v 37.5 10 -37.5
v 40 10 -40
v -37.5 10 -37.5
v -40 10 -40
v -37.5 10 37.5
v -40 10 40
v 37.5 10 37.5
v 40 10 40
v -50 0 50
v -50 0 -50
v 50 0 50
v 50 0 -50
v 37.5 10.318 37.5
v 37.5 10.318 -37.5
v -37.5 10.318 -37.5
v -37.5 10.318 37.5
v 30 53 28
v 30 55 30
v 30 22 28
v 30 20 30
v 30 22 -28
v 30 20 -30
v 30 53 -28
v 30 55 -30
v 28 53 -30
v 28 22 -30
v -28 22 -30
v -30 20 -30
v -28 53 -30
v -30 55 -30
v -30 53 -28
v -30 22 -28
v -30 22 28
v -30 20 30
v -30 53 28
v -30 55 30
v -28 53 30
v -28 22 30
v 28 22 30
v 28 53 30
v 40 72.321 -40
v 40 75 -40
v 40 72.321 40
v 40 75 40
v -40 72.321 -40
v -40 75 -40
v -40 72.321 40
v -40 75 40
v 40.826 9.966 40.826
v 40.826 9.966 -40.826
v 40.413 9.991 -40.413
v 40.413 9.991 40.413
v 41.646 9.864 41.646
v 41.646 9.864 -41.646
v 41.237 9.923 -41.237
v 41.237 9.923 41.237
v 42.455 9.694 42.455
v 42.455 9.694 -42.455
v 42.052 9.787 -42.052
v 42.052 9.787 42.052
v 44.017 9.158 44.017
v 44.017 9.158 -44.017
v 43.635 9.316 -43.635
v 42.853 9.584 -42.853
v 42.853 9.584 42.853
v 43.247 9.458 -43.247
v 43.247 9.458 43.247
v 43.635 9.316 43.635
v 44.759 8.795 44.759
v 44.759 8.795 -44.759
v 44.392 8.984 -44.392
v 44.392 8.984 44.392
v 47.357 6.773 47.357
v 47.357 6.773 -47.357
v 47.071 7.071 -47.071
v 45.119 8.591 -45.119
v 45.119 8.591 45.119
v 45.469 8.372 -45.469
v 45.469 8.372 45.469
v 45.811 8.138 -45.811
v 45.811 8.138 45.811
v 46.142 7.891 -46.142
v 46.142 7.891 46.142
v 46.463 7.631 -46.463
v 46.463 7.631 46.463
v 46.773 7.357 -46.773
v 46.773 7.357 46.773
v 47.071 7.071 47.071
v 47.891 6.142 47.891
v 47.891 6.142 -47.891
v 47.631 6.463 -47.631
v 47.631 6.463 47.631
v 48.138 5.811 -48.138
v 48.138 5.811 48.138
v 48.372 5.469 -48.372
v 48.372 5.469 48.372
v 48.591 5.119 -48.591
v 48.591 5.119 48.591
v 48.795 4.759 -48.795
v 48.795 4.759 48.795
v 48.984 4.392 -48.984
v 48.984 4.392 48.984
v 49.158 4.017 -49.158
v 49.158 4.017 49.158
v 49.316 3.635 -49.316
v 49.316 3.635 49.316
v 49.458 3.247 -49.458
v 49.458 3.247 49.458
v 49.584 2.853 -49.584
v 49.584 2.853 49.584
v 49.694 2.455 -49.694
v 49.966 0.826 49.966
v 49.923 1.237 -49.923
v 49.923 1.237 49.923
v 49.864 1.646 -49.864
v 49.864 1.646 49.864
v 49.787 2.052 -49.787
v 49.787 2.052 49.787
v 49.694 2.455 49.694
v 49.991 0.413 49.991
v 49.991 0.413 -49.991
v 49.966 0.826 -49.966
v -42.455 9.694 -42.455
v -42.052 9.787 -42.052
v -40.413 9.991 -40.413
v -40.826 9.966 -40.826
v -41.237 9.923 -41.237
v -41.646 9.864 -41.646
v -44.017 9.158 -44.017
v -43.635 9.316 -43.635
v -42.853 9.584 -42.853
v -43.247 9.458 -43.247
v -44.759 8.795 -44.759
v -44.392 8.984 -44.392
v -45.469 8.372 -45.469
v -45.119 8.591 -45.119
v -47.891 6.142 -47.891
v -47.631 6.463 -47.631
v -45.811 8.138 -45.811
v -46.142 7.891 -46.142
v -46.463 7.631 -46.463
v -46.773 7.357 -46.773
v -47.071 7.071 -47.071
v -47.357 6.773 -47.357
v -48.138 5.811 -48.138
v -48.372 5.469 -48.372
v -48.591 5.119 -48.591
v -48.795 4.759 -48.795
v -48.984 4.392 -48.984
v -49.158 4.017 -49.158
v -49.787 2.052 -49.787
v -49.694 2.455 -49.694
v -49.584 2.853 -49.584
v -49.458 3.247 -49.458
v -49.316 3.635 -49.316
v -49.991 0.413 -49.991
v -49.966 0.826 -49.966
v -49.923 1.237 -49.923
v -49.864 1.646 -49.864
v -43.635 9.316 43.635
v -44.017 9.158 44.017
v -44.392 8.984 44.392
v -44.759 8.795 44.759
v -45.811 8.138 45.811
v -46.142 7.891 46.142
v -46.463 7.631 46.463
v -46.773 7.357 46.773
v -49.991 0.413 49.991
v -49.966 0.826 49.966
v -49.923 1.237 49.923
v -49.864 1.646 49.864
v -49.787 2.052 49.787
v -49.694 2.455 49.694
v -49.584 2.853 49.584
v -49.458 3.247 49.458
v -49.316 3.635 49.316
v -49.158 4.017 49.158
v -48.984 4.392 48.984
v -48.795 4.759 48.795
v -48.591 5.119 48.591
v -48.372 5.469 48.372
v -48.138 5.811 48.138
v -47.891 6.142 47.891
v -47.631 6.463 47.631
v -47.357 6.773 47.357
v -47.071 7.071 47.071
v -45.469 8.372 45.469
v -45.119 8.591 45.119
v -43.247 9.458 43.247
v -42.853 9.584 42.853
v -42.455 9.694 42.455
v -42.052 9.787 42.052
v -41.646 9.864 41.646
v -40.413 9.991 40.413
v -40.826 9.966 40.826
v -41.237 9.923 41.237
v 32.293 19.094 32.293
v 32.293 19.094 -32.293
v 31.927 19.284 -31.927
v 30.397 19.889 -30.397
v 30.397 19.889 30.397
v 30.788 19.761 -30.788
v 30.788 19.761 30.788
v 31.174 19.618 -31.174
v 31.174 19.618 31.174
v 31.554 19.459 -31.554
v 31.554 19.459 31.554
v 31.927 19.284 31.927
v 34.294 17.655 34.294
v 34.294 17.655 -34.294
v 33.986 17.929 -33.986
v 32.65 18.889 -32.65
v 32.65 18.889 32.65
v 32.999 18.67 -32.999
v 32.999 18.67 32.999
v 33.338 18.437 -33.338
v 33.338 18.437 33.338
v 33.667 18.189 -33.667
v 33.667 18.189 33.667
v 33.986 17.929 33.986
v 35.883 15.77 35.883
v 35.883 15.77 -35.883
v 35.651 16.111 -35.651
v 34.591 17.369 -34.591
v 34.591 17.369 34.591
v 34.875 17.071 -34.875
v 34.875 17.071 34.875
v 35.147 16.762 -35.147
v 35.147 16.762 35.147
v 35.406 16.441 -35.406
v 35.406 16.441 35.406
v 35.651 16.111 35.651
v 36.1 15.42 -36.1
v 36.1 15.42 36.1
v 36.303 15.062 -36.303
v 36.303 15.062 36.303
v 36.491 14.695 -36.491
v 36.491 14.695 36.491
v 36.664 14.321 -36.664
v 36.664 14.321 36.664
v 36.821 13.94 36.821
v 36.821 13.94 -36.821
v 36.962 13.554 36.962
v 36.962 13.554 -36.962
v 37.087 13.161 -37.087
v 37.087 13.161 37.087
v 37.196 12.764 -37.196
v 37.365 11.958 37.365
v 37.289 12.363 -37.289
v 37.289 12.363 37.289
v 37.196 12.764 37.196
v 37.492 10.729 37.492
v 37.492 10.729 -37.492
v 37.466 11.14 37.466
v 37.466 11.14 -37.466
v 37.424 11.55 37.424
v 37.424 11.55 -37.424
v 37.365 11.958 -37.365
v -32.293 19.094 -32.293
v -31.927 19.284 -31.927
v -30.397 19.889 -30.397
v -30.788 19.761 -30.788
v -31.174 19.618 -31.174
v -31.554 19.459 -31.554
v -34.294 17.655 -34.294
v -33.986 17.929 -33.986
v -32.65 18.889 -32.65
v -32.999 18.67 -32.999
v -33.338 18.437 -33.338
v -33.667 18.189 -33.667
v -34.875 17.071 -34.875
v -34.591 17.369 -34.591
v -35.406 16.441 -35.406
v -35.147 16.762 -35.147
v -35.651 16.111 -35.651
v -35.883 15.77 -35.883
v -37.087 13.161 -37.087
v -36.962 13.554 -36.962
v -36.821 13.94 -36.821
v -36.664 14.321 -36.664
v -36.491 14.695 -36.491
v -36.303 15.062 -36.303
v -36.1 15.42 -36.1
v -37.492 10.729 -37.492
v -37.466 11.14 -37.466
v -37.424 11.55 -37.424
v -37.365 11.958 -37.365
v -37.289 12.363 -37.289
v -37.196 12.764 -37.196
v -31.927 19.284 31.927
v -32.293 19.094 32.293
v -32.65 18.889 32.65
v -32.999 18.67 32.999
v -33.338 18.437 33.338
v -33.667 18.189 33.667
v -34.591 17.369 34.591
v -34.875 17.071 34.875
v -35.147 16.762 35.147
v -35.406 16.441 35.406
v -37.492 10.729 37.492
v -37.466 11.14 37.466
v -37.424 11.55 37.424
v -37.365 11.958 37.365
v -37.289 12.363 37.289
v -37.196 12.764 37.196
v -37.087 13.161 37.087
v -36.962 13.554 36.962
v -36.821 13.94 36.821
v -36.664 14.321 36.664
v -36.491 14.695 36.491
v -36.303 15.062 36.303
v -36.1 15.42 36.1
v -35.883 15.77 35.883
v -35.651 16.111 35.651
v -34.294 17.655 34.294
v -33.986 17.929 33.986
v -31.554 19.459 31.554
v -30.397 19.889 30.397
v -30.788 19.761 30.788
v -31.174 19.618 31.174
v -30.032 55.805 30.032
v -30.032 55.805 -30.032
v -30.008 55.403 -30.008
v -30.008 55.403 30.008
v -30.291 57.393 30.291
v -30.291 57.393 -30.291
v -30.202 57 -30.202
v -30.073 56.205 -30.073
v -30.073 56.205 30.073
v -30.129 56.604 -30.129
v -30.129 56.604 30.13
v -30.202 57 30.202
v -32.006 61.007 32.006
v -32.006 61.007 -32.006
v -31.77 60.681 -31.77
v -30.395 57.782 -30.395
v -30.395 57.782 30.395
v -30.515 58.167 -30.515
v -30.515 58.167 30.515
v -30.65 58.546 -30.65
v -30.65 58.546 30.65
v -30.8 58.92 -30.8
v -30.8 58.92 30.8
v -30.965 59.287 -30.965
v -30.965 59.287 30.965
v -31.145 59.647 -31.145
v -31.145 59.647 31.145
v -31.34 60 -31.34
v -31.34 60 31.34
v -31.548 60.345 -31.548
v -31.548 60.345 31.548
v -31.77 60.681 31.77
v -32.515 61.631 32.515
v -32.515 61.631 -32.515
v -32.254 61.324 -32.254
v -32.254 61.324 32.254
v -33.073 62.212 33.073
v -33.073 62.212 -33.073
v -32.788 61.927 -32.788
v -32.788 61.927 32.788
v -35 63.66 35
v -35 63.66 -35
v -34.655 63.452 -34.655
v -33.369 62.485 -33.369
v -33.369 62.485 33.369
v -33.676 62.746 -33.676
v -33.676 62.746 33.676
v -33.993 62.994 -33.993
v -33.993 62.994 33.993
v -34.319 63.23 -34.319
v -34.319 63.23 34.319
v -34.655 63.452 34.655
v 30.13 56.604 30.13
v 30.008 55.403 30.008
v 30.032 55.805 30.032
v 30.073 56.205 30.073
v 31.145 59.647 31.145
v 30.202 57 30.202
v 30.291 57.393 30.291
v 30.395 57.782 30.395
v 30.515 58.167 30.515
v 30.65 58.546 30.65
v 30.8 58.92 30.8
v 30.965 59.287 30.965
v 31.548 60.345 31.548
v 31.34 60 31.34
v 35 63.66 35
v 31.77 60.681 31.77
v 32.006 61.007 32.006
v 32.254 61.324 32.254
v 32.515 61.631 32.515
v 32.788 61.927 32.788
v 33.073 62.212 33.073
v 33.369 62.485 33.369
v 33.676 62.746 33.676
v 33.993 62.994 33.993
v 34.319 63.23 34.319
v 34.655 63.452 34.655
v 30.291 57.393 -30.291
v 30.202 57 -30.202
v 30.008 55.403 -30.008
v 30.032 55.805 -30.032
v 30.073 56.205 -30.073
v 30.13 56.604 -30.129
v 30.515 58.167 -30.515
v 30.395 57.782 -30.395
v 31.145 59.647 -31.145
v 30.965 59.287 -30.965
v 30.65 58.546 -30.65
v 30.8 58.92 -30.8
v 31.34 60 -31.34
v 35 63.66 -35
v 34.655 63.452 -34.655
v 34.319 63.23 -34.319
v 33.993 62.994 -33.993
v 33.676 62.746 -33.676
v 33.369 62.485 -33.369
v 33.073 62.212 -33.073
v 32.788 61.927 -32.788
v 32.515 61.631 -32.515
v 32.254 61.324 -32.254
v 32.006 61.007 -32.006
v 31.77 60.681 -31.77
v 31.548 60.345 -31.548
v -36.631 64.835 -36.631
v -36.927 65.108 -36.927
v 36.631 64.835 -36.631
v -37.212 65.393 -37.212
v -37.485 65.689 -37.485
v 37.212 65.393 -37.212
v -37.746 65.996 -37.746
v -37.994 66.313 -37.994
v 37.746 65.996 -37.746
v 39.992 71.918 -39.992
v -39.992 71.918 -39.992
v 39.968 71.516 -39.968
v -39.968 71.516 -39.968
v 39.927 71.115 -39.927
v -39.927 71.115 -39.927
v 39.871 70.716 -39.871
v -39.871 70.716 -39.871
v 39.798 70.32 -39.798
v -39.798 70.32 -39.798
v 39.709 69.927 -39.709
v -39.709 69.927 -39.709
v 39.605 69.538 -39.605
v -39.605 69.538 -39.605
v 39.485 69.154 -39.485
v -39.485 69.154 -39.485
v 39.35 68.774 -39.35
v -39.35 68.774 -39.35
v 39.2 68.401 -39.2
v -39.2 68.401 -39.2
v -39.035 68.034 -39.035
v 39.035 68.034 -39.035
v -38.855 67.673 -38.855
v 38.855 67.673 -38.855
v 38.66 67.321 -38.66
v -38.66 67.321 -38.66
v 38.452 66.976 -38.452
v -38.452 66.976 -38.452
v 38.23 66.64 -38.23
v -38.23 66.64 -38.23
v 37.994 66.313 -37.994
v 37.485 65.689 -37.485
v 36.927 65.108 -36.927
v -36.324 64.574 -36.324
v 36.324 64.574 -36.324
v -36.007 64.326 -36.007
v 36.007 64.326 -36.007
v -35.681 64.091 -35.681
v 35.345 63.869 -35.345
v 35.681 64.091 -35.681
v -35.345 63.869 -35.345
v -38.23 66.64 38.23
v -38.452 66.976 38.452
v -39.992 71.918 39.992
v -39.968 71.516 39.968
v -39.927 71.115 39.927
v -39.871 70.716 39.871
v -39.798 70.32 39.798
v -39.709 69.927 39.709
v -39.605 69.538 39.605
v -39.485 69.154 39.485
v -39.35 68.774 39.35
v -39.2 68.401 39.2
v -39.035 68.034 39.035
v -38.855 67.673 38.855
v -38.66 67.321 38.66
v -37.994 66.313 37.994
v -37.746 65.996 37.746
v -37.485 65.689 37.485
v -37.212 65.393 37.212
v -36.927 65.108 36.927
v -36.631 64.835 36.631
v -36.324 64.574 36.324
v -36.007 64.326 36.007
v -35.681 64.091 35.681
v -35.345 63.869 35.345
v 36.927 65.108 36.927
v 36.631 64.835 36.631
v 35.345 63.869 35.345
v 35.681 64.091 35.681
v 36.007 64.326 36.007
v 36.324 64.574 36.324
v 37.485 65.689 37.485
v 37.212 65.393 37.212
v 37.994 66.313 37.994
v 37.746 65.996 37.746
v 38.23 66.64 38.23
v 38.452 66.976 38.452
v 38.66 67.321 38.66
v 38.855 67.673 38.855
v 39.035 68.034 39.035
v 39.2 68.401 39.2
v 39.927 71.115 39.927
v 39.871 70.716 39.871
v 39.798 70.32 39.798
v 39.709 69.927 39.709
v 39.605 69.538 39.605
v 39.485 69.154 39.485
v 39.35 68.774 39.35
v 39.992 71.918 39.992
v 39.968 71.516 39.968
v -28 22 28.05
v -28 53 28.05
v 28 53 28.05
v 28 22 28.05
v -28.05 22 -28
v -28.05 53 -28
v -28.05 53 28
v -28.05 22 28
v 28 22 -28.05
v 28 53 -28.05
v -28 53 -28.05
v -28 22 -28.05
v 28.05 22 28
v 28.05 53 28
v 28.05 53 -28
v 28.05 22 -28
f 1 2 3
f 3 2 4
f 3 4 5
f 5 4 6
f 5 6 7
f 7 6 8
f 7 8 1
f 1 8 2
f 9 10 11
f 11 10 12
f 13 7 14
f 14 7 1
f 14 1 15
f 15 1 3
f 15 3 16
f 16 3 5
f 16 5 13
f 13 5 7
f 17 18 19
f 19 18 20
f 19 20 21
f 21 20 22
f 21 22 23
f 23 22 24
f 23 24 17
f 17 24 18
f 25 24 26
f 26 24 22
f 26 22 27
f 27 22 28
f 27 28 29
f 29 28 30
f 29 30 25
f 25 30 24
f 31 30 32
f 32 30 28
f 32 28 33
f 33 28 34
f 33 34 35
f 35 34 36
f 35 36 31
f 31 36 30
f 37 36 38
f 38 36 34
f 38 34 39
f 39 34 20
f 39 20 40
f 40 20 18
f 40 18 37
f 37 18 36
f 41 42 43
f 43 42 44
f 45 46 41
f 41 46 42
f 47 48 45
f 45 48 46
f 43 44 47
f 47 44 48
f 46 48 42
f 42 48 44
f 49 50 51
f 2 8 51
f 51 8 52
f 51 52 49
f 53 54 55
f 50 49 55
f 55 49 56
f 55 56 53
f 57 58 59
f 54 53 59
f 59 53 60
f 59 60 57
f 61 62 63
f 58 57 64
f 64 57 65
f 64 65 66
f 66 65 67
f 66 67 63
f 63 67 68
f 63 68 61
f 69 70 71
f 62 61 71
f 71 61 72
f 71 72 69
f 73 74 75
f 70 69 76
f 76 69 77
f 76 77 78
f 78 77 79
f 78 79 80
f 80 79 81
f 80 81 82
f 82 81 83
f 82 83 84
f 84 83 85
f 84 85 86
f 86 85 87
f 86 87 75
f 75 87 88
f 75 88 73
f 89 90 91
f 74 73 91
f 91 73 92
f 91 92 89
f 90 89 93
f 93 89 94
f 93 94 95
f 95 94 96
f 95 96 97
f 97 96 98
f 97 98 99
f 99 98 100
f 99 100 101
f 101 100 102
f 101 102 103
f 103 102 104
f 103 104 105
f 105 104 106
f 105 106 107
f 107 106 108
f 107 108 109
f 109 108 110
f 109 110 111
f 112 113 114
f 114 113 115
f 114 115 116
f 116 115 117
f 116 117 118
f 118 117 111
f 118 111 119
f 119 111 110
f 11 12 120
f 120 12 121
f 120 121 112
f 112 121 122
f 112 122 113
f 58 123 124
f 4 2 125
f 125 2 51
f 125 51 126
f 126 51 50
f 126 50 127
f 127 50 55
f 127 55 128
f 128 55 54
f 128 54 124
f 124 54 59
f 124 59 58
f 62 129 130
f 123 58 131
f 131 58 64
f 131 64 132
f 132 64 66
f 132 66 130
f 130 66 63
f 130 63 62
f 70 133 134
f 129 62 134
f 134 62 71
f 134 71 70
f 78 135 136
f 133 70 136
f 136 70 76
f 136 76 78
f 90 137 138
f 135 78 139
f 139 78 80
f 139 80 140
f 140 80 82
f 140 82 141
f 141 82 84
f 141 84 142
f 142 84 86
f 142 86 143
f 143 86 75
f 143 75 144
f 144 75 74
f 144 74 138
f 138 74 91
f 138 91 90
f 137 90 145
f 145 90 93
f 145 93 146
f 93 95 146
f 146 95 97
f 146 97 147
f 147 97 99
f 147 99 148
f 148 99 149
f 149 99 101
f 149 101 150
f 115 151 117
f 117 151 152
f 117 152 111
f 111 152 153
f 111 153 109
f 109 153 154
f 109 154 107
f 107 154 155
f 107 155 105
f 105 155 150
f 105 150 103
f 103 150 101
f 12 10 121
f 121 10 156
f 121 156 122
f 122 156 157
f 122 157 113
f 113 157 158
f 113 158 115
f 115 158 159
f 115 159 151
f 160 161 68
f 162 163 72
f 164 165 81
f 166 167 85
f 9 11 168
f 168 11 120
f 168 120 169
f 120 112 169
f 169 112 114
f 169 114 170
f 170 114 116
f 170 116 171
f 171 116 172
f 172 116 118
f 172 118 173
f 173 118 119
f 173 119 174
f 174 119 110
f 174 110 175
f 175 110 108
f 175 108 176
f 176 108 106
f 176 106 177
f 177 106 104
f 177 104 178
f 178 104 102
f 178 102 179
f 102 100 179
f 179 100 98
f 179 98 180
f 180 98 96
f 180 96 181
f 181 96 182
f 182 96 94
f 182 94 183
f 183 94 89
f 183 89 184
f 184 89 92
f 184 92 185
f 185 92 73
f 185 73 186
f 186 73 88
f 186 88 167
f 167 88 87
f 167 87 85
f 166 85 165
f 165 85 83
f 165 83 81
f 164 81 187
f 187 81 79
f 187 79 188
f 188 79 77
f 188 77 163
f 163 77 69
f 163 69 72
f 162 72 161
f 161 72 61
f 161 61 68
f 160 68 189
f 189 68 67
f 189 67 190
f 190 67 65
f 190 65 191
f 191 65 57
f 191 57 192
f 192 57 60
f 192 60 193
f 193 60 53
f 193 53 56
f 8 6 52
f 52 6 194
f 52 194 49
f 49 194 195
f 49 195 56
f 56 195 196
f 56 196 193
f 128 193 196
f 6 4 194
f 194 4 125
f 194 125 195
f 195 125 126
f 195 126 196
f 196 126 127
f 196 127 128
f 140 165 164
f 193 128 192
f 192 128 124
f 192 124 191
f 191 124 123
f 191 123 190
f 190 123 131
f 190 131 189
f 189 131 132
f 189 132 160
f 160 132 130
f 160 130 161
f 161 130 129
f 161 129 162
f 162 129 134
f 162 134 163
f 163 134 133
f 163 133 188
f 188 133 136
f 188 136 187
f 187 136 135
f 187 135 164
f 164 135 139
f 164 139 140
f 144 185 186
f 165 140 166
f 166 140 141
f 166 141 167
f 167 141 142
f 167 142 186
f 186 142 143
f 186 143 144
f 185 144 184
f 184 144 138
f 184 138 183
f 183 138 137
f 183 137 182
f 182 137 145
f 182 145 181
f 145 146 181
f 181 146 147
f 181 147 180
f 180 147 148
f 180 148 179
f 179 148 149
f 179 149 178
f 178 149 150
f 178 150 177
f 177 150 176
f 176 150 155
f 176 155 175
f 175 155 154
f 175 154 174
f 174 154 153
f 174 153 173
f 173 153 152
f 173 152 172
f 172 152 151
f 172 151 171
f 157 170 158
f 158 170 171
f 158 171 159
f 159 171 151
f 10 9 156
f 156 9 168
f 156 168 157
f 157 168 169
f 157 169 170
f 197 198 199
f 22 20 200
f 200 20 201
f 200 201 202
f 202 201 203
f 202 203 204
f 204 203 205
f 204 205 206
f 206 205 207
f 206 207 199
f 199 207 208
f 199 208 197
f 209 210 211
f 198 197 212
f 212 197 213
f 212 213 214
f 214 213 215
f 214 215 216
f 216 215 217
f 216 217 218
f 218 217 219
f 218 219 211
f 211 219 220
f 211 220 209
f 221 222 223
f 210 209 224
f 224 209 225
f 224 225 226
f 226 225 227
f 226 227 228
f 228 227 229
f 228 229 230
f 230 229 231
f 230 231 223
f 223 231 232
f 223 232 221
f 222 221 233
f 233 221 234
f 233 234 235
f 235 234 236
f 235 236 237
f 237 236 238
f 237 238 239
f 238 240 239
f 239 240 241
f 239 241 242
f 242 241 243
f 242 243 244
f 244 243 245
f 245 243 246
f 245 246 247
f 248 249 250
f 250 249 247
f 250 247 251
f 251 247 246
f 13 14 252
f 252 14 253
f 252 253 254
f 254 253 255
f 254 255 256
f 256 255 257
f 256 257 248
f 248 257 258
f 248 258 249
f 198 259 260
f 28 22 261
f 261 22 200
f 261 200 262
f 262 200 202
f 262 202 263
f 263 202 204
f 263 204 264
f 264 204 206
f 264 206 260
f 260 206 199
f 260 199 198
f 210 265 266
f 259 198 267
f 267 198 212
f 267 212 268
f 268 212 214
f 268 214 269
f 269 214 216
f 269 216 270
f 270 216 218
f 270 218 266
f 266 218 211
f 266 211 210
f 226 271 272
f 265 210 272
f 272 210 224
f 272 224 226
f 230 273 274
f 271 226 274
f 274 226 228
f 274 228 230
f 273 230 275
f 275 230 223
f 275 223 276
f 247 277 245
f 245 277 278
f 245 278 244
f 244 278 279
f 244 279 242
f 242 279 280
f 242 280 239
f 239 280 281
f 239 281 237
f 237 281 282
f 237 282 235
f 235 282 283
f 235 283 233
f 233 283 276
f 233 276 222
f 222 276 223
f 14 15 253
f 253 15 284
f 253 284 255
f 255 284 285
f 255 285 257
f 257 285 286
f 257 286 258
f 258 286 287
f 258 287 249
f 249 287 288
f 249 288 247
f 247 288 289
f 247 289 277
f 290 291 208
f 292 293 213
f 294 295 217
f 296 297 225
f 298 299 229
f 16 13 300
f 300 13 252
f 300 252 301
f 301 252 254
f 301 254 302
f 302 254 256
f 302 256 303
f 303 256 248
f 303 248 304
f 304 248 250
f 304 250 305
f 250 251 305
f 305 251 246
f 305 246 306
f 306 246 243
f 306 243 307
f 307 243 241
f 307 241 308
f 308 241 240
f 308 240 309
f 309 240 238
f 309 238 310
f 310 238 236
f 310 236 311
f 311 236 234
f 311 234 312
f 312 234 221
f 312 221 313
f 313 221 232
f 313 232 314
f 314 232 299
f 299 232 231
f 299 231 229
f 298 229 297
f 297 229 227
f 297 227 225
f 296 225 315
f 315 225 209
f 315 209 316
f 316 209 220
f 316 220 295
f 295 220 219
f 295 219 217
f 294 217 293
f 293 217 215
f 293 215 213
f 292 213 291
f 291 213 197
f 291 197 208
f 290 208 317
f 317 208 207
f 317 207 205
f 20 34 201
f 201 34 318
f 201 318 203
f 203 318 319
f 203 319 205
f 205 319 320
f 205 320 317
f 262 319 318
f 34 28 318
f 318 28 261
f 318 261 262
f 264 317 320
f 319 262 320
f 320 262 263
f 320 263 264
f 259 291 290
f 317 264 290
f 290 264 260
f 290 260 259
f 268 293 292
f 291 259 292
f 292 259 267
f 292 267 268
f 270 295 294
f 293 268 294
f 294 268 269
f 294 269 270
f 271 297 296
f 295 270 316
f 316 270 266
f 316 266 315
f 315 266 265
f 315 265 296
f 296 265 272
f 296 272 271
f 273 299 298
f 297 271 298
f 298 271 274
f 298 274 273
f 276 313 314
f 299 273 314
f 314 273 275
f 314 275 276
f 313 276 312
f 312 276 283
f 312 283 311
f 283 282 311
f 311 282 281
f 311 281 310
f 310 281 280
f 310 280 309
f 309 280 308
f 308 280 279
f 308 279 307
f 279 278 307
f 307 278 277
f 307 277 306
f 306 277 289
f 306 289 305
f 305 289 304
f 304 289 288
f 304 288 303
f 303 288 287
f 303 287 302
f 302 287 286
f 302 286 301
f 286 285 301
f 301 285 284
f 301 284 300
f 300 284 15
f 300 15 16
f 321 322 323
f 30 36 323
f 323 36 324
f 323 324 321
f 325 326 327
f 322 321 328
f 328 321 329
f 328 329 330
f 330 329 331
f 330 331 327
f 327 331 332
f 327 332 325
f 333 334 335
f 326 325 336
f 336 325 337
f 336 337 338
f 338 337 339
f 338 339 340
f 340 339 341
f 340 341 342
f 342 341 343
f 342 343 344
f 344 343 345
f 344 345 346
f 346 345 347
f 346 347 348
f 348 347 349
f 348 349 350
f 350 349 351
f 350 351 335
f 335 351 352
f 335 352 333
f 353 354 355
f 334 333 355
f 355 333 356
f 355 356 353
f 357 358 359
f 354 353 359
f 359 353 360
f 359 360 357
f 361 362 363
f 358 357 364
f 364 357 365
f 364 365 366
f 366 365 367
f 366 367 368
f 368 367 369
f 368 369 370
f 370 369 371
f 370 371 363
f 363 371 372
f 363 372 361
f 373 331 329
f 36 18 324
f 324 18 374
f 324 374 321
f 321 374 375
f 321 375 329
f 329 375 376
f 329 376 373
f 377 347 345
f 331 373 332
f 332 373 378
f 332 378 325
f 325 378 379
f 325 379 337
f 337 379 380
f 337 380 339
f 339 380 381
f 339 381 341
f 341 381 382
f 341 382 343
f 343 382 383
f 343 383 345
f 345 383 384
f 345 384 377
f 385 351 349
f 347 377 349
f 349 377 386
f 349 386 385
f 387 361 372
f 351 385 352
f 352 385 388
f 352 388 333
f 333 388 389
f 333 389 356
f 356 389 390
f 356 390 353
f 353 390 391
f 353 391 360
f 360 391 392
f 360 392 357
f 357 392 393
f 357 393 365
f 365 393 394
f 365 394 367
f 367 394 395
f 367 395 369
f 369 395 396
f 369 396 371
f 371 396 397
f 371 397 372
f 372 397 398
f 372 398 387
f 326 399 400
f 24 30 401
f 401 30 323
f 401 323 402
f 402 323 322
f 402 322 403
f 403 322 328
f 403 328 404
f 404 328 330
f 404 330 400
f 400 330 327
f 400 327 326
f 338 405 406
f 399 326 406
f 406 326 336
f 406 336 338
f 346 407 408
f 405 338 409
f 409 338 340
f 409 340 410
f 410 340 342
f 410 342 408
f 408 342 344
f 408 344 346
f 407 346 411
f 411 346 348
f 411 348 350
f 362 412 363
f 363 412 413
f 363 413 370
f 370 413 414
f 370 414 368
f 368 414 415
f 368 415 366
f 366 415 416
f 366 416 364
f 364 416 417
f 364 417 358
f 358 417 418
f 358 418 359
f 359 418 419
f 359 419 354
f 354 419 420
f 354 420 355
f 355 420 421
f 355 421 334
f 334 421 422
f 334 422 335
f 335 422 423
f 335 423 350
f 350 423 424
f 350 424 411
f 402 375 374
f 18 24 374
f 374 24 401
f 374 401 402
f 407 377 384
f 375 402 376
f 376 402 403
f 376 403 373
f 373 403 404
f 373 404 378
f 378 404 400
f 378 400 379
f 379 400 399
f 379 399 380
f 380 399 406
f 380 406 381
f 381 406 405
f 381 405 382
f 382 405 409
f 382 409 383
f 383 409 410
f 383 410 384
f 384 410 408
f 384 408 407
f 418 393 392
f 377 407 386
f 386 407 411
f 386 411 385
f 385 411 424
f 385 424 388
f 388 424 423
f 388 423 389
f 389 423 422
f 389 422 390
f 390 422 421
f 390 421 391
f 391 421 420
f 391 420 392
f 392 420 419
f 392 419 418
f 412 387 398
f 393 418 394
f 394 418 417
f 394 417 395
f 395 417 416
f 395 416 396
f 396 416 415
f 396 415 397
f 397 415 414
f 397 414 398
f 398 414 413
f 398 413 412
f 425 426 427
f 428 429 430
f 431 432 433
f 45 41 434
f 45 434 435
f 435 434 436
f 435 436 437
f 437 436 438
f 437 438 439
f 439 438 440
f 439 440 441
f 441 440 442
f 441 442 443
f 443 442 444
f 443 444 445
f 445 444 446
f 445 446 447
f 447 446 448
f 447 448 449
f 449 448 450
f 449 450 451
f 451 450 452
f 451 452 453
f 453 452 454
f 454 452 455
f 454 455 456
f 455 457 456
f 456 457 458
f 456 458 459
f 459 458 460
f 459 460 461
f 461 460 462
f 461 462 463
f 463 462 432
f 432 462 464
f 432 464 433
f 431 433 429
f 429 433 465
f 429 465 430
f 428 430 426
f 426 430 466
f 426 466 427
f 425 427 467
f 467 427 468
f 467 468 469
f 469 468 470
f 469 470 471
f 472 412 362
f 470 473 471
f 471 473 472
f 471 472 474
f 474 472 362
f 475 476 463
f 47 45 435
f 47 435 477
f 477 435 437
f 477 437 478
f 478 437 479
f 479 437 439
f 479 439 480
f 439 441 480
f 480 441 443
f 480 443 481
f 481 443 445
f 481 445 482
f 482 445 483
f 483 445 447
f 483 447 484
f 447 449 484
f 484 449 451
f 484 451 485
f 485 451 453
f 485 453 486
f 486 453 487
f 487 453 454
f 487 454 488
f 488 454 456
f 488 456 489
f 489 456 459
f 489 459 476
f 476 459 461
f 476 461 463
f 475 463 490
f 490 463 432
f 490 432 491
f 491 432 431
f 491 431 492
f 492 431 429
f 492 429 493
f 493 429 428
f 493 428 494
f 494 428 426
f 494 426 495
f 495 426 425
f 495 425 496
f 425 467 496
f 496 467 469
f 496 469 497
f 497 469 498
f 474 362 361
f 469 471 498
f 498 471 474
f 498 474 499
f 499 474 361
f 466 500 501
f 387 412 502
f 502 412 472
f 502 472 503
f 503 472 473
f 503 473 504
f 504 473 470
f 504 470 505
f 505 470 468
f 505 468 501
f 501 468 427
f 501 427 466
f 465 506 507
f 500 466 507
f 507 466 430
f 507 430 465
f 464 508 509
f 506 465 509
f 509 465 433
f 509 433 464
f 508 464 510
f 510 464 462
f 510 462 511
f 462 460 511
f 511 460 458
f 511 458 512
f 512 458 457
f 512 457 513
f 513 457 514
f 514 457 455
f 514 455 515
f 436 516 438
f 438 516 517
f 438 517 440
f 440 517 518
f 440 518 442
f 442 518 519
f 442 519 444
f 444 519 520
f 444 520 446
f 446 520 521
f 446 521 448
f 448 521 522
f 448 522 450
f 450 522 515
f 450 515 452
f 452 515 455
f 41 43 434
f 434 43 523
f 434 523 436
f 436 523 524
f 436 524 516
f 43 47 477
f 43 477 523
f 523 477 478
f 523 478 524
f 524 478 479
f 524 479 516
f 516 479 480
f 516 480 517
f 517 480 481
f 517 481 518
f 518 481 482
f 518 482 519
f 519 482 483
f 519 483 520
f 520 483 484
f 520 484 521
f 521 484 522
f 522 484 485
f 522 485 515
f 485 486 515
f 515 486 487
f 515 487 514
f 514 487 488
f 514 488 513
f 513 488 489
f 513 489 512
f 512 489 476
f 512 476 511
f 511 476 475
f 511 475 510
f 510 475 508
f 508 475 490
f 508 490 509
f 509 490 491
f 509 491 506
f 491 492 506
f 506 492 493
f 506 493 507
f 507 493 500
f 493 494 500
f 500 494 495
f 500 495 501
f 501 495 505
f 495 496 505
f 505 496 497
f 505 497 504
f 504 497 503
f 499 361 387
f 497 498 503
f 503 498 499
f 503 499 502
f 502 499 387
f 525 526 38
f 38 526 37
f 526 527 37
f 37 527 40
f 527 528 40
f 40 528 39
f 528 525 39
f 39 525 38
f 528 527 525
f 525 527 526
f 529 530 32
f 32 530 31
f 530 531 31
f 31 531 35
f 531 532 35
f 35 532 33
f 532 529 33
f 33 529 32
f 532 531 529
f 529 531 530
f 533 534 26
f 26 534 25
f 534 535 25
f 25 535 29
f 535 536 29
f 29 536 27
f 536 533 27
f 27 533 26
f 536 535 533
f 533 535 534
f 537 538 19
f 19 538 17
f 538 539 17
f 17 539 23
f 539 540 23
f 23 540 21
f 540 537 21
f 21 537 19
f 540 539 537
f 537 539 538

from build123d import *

# Parameters (mm, degrees)
SKETCH2_W           = 100
SKETCH2_H           = 100
BOSS_EXTRUDE1_DEPTH = 10
SKETCH3_W           = 75
SKETCH3_H           = 75
BOSS_EXTRUDE2_DEPTH = 10
SKETCH4_W           = 60
SKETCH4_H           = 60
BOSS_EXTRUDE3_DEPTH = 45
SKETCH5_W           = 80
SKETCH5_H           = 80
BOSS_EXTRUDE4_DEPTH = 10
FILLET2_R           = 10
FILLET1_R           = 10
FILLET3_R           = 10
SKETCH6_W           = 56
SKETCH6_H           = 31
CUT_EXTRUDE1_DEPTH  = 1.95
CIRPATTERN2_COUNT   = 4


# Some blends are built 0.0001 mm under size
with BuildPart() as part:
    # Sketch2 → Boss-Extrude1 (new body)
    with BuildSketch(Plane(origin=(0, 0, 0), x_dir=(1, 0, 0), z_dir=(0, 1, 0))):
        Rectangle(SKETCH2_W, SKETCH2_H)
    extrude(amount=BOSS_EXTRUDE1_DEPTH)

    # Sketch3 → Boss-Extrude2 (add)
    with BuildSketch(Plane(origin=(0, 10, 0), x_dir=(1, 0, 0), z_dir=(0, 1, 0))):
        Rectangle(SKETCH3_W, SKETCH3_H)
    extrude(amount=BOSS_EXTRUDE2_DEPTH)

    # Sketch4 → Boss-Extrude3 (add)
    with BuildSketch(Plane(origin=(0, 20, 0), x_dir=(1, 0, 0), z_dir=(0, 1, 0))):
        Rectangle(SKETCH4_W, SKETCH4_H)
    extrude(amount=BOSS_EXTRUDE3_DEPTH)

    # Sketch5 → Boss-Extrude4 (add)
    with BuildSketch(Plane(origin=(0, 65, 0), x_dir=(1, 0, 0), z_dir=(0, 1, 0))):
        Rectangle(SKETCH5_W, SKETCH5_H)
    extrude(amount=BOSS_EXTRUDE4_DEPTH)

    # Fillet2
    # the kernel refuses this fillet: 10 mm, written as the material it takes off along each edge
    with BuildSketch(Plane(origin=(-50, 10, 75), x_dir=(1, 0, 0), z_dir=(0, 0, -1)), Plane(origin=(75, 10, 50), x_dir=(0, 0, -1), z_dir=(-1, 0, 0)), Plane(origin=(-75, 10, -50), x_dir=(0, 0, 1), z_dir=(1, 0, 0)), Plane(origin=(50, 10, -75), x_dir=(-1, 0, 0), z_dir=(0, 0, 1))) as fillet2_piece_1:
        with BuildLine():
            CenterArc((FILLET2_R, FILLET2_R), FILLET2_R, 180, 90)
            Line((0, FILLET2_R), (-FILLET2_R * 0.02, FILLET2_R))
            Line((-FILLET2_R * 0.02, FILLET2_R), (-FILLET2_R * 0.02, -FILLET2_R * 0.02))
            Line((-FILLET2_R * 0.02, -FILLET2_R * 0.02), (FILLET2_R, -FILLET2_R * 0.02))
            Line((FILLET2_R, -FILLET2_R * 0.02), (FILLET2_R, 0))
        make_face()
    extrude(amount=150, mode=Mode.SUBTRACT)
    with BuildSketch(Plane(origin=(-37.5, 20, 61.706145914), x_dir=(1, 0, 0), z_dir=(0, 0, -1)), Plane(origin=(-61.706145914, 20, -37.5), x_dir=(0, 0, 1), z_dir=(1, 0, 0)), Plane(origin=(37.5, 20, -61.706145914), x_dir=(-1, 0, 0), z_dir=(0, 0, 1)), Plane(origin=(61.706145914, 20, 37.5), x_dir=(0, 0, -1), z_dir=(-1, 0, 0))) as fillet2_piece_2:
        with BuildLine():
            CenterArc((10, 9.682458366), FILLET2_R, 180, 75.522487814)
            Line((0, 9.682458366), (-0.2, 9.682458366))
            Line((-0.2, 9.682458366), (-0.2, 0))
            Line((-0.2, 0), (0, -0.2))
            ThreePointArc((0, -0.2), (3.75, -0.2), (7.45, -0.193649167))
            Line((7.45, -0.193649167), (7.5, 0))
        make_face()
    extrude(amount=123.412291828, mode=Mode.SUBTRACT)

    # Fillet1
    fillet1_edges = [part.edges().sort_by_distance(p)[0] for p in [
        (30, 65, 0),
        (0, 65, -30),
        (-30, 65, 0),
        (0, 65, 30),
    ]]
    fillet(fillet1_edges, radius=FILLET1_R - 0.0001)  # a hair under: the kernel refuses the full size

    # Fillet3
    # the kernel refuses this fillet: 10 mm, written as the material it takes off along each edge
    with BuildSketch(Plane(origin=(58.301375851, 65, 40), x_dir=(0, -0.25881282131019395, -0.9659274939277055), z_dir=(-1, 0, 0)), Plane(origin=(-40, 65, 58.301375851), x_dir=(0.9659274939277057, -0.2588128213101933, 0), z_dir=(0, 0, -1)), Plane(origin=(-58.301375851, 65, -40), x_dir=(0, -0.2588128213101933, 0.9659274939277057), z_dir=(1, 0, 0)), Plane(origin=(40, 65, -58.301375851), x_dir=(-0.9659274939277057, -0.2588128213101933, 0), z_dir=(0, 0, 1))) as fillet3_piece_1:
        with BuildLine():
            CenterArc((7.764622652, -9.659249058), FILLET3_R, 105.000203777, 60.000165399)
            Line((-1.894652287, -7.071120845), (-2.860579781, -6.812308023))
            Line((-2.860579781, -6.812308023), (-0.965927494, 0.258812821))
            Line((-0.965927494, 0.258812821), (0.258812821, 0.965927494))
            ThreePointArc((0.258812821, 0.965927494), (0.258909414, 0.965901613), (4.917575367, 0.965924906))
            Line((4.917575367, 0.965924906), (5.176397847, 0))
        make_face()
    extrude(amount=116.602751703, mode=Mode.SUBTRACT)

    # Sketch6 → Cut-Extrude1 (cut)
    with BuildSketch(Plane.XY.offset(30)):
        with Locations((0, 37.5)):
            Rectangle(SKETCH6_W, SKETCH6_H)
    cut_extrude1 = extrude(amount=-CUT_EXTRUDE1_DEPTH, mode=Mode.SUBTRACT)

    # CirPattern2: Cut-Extrude1 ×4 about axis
    cirpattern2_axis = Axis((0, 0, 0), (0, 1, 0))
    for i in range(1, CIRPATTERN2_COUNT):
        add(cut_extrude1.rotate(cirpattern2_axis, i * 360 / CIRPATTERN2_COUNT), mode=Mode.SUBTRACT)


solid = part.part
